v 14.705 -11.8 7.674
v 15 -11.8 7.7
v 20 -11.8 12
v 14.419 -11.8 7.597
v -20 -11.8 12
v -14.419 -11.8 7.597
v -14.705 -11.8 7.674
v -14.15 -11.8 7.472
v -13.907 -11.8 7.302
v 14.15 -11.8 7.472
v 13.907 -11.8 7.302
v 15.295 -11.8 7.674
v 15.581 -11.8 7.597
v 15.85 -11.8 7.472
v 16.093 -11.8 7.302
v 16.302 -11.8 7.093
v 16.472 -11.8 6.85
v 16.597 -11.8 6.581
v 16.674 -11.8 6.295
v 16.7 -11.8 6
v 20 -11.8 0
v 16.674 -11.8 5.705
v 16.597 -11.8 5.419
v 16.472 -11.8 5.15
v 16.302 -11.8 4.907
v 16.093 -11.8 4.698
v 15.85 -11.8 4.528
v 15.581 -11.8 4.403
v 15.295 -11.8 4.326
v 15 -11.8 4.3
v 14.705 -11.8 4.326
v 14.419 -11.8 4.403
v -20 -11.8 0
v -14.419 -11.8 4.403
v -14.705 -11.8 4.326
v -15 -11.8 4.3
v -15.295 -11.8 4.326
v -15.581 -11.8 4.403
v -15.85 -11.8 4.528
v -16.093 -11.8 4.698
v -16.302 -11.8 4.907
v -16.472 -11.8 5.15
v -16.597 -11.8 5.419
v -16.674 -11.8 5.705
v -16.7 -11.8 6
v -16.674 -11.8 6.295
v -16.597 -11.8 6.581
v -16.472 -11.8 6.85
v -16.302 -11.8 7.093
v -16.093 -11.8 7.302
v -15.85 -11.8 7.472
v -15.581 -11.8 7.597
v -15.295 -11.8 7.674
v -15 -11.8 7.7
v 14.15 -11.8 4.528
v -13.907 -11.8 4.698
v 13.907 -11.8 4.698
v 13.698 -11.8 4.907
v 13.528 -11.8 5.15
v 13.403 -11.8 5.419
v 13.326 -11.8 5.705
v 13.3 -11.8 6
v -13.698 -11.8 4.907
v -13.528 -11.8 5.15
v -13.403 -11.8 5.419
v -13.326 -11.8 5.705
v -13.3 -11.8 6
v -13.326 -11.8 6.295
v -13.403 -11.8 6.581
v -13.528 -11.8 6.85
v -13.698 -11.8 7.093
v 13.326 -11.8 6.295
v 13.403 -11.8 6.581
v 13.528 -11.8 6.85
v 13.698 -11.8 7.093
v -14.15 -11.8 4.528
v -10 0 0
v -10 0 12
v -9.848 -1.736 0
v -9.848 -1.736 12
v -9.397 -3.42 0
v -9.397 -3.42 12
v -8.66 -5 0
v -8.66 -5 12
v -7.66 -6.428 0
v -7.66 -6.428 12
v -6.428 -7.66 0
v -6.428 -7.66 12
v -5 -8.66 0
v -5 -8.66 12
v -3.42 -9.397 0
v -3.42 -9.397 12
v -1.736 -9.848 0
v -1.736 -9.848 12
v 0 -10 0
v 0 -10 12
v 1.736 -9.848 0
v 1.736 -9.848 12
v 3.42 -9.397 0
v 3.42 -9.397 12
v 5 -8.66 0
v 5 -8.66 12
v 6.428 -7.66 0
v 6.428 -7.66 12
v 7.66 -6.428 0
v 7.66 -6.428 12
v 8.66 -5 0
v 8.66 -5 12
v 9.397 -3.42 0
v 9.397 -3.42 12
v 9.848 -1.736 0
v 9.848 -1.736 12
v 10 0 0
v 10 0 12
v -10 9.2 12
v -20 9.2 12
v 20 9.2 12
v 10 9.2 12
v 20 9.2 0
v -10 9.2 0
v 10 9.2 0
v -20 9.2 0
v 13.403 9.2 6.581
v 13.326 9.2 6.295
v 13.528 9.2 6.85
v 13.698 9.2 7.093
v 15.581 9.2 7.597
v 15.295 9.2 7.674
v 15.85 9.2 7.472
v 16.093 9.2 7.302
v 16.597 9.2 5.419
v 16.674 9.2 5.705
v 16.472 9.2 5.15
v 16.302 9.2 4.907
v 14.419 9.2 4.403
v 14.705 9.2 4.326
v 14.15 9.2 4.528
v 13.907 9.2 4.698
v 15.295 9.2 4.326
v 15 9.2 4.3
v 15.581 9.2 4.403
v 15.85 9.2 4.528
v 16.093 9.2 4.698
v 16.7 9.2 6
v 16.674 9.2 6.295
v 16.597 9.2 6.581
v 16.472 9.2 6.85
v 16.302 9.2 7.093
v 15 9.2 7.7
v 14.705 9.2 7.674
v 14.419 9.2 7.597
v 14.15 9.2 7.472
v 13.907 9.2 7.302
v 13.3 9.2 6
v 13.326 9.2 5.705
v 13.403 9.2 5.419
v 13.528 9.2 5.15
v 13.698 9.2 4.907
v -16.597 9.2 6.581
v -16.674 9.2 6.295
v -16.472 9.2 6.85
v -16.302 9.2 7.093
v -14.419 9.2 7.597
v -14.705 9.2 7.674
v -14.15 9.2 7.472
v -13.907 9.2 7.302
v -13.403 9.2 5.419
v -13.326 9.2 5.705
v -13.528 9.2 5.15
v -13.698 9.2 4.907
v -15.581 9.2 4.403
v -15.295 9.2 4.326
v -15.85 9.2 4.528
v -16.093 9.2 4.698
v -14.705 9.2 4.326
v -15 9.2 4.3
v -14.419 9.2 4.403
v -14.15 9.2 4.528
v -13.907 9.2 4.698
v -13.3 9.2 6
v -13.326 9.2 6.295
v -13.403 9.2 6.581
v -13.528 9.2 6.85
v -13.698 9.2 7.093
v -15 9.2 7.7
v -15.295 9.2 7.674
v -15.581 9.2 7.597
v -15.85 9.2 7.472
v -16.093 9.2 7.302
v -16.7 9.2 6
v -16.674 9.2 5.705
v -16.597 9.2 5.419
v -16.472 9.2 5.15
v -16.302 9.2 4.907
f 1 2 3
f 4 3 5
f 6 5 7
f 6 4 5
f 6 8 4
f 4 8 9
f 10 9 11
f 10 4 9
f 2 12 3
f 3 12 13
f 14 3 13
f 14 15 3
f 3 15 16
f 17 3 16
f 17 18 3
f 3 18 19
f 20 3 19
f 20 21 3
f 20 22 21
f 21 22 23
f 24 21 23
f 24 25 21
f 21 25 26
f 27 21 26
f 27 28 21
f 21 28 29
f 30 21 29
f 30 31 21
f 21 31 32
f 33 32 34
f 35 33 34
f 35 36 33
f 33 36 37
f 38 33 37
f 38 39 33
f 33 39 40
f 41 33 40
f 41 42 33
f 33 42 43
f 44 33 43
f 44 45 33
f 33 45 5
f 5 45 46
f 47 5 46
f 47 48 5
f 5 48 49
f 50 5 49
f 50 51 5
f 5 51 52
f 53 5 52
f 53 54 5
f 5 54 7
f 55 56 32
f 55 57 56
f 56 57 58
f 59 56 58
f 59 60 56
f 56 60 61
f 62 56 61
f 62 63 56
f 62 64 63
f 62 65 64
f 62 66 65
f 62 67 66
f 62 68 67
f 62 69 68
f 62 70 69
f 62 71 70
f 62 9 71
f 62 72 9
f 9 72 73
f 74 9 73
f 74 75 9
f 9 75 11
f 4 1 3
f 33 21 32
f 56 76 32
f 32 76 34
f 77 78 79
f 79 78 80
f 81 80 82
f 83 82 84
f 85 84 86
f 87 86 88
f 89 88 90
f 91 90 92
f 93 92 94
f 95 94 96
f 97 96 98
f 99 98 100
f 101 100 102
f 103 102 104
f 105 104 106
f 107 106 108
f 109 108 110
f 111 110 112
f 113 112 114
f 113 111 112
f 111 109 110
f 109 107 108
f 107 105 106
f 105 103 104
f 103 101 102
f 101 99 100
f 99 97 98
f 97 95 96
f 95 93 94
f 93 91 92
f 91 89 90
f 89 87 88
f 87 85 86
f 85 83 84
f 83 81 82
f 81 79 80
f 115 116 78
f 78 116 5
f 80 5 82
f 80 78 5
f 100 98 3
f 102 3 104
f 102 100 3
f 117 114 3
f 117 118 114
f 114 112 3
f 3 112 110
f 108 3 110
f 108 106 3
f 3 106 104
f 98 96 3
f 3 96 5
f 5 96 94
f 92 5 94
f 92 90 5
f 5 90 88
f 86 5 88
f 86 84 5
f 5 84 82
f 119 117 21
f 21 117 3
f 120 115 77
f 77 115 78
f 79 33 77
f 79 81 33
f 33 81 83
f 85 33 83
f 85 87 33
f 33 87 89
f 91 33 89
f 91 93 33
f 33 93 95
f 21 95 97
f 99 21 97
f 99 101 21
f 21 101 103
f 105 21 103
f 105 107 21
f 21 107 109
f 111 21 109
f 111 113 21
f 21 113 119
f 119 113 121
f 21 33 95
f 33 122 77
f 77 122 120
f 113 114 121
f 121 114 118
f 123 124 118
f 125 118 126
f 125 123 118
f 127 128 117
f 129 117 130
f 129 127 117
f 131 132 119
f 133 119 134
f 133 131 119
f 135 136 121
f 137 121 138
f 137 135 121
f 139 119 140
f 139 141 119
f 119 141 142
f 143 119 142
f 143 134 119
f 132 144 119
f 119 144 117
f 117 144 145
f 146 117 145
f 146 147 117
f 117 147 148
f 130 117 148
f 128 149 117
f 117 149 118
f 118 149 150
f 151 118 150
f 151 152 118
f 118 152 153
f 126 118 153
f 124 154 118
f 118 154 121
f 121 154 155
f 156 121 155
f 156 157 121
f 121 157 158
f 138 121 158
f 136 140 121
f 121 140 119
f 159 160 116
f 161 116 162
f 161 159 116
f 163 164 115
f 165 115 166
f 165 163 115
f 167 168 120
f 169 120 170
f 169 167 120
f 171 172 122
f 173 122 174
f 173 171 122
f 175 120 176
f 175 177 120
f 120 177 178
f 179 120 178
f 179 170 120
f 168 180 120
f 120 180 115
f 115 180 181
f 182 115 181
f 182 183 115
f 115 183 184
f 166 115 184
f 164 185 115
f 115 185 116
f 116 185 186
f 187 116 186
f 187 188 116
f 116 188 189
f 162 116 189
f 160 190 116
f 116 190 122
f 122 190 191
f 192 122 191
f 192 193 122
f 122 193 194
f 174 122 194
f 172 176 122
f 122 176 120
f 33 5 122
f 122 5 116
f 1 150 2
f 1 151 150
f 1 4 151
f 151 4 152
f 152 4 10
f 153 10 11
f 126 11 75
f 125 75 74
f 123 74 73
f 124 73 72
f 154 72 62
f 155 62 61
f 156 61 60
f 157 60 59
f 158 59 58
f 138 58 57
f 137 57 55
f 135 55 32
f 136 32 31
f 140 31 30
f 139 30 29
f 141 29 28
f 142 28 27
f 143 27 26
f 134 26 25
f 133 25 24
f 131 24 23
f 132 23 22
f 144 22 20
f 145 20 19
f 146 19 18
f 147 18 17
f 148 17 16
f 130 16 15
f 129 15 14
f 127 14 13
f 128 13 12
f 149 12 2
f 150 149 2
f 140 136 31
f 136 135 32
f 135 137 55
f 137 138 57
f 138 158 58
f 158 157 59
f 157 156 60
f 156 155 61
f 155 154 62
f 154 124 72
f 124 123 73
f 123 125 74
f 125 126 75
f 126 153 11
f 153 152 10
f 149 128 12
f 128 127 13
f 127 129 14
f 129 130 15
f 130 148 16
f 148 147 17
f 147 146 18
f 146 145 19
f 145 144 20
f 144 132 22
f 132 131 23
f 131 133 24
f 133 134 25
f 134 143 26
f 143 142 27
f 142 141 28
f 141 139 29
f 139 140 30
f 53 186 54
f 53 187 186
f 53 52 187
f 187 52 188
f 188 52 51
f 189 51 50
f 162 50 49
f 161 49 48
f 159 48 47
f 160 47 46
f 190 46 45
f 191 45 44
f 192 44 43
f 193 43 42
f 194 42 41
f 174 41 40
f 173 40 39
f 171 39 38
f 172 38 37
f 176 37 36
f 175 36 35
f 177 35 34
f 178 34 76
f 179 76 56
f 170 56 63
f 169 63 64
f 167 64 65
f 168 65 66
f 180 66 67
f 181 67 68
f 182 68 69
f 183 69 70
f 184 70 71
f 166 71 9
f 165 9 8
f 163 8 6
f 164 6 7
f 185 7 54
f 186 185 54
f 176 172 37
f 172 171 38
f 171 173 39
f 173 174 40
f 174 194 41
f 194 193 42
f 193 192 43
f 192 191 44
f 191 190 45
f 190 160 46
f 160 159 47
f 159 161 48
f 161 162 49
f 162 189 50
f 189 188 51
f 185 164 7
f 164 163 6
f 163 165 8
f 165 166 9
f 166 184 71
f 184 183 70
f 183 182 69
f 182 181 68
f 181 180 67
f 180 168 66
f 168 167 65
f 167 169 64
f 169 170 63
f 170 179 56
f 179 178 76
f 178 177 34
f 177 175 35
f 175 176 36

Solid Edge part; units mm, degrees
sketch "Sketch1" plane through (0, 0, 0) normal (0, 0, 1) x (1, 0, 0)
  line L0 (-10, 0) -> (-10, 9.2)
  line L1 (-10, 9.2) -> (-20, 9.2)
  line L2 (-20, 9.2) -> (-20, -11.8)
  line L3 (-20, -11.8) -> (20, -11.8)
  line L4 (20, -11.8) -> (20, 9.2)
  line L5 (20, 9.2) -> (10, 9.2)
  line L6 (10, 9.2) -> (10, 0)
  arc A0 (10, 0) -> (-10, 0) centre (0, 0) cw
  dimension "D1" = 10
  dimension "D2" = 21
extrude "Protrusion1" add sketch "Sketch1" along normal blind 20
sketch "Sketch2" plane through (-15, 9.2, 10) normal (0, 1, 0) x (0, 0, -1)
  circle A0 centre (4, -30) radius 1.7
  circle A1 centre (4, 0) radius 1.7
  dimension "D1" = 15
  dimension "D2" = 15
  dimension "D3" = 14
  dimension "D4" = 3.4
extrude "Cutout1" cut sketch "Sketch2" against normal through all
sketch "Sketch3" plane through (0, -11.8, 10) normal (0, -1, 0) x (1, 0, 0)
  line L0 (-20, 10) -> (-20, 2)
  line L1 (-20, 2) -> (20, 2)
  dimension "D1" = 8
extrude "Cutout2" cut sketch "Sketch3" against normal through all material side at (-19.95, -11.8, 16)
properties material "ABS Plastic, medium impact"
